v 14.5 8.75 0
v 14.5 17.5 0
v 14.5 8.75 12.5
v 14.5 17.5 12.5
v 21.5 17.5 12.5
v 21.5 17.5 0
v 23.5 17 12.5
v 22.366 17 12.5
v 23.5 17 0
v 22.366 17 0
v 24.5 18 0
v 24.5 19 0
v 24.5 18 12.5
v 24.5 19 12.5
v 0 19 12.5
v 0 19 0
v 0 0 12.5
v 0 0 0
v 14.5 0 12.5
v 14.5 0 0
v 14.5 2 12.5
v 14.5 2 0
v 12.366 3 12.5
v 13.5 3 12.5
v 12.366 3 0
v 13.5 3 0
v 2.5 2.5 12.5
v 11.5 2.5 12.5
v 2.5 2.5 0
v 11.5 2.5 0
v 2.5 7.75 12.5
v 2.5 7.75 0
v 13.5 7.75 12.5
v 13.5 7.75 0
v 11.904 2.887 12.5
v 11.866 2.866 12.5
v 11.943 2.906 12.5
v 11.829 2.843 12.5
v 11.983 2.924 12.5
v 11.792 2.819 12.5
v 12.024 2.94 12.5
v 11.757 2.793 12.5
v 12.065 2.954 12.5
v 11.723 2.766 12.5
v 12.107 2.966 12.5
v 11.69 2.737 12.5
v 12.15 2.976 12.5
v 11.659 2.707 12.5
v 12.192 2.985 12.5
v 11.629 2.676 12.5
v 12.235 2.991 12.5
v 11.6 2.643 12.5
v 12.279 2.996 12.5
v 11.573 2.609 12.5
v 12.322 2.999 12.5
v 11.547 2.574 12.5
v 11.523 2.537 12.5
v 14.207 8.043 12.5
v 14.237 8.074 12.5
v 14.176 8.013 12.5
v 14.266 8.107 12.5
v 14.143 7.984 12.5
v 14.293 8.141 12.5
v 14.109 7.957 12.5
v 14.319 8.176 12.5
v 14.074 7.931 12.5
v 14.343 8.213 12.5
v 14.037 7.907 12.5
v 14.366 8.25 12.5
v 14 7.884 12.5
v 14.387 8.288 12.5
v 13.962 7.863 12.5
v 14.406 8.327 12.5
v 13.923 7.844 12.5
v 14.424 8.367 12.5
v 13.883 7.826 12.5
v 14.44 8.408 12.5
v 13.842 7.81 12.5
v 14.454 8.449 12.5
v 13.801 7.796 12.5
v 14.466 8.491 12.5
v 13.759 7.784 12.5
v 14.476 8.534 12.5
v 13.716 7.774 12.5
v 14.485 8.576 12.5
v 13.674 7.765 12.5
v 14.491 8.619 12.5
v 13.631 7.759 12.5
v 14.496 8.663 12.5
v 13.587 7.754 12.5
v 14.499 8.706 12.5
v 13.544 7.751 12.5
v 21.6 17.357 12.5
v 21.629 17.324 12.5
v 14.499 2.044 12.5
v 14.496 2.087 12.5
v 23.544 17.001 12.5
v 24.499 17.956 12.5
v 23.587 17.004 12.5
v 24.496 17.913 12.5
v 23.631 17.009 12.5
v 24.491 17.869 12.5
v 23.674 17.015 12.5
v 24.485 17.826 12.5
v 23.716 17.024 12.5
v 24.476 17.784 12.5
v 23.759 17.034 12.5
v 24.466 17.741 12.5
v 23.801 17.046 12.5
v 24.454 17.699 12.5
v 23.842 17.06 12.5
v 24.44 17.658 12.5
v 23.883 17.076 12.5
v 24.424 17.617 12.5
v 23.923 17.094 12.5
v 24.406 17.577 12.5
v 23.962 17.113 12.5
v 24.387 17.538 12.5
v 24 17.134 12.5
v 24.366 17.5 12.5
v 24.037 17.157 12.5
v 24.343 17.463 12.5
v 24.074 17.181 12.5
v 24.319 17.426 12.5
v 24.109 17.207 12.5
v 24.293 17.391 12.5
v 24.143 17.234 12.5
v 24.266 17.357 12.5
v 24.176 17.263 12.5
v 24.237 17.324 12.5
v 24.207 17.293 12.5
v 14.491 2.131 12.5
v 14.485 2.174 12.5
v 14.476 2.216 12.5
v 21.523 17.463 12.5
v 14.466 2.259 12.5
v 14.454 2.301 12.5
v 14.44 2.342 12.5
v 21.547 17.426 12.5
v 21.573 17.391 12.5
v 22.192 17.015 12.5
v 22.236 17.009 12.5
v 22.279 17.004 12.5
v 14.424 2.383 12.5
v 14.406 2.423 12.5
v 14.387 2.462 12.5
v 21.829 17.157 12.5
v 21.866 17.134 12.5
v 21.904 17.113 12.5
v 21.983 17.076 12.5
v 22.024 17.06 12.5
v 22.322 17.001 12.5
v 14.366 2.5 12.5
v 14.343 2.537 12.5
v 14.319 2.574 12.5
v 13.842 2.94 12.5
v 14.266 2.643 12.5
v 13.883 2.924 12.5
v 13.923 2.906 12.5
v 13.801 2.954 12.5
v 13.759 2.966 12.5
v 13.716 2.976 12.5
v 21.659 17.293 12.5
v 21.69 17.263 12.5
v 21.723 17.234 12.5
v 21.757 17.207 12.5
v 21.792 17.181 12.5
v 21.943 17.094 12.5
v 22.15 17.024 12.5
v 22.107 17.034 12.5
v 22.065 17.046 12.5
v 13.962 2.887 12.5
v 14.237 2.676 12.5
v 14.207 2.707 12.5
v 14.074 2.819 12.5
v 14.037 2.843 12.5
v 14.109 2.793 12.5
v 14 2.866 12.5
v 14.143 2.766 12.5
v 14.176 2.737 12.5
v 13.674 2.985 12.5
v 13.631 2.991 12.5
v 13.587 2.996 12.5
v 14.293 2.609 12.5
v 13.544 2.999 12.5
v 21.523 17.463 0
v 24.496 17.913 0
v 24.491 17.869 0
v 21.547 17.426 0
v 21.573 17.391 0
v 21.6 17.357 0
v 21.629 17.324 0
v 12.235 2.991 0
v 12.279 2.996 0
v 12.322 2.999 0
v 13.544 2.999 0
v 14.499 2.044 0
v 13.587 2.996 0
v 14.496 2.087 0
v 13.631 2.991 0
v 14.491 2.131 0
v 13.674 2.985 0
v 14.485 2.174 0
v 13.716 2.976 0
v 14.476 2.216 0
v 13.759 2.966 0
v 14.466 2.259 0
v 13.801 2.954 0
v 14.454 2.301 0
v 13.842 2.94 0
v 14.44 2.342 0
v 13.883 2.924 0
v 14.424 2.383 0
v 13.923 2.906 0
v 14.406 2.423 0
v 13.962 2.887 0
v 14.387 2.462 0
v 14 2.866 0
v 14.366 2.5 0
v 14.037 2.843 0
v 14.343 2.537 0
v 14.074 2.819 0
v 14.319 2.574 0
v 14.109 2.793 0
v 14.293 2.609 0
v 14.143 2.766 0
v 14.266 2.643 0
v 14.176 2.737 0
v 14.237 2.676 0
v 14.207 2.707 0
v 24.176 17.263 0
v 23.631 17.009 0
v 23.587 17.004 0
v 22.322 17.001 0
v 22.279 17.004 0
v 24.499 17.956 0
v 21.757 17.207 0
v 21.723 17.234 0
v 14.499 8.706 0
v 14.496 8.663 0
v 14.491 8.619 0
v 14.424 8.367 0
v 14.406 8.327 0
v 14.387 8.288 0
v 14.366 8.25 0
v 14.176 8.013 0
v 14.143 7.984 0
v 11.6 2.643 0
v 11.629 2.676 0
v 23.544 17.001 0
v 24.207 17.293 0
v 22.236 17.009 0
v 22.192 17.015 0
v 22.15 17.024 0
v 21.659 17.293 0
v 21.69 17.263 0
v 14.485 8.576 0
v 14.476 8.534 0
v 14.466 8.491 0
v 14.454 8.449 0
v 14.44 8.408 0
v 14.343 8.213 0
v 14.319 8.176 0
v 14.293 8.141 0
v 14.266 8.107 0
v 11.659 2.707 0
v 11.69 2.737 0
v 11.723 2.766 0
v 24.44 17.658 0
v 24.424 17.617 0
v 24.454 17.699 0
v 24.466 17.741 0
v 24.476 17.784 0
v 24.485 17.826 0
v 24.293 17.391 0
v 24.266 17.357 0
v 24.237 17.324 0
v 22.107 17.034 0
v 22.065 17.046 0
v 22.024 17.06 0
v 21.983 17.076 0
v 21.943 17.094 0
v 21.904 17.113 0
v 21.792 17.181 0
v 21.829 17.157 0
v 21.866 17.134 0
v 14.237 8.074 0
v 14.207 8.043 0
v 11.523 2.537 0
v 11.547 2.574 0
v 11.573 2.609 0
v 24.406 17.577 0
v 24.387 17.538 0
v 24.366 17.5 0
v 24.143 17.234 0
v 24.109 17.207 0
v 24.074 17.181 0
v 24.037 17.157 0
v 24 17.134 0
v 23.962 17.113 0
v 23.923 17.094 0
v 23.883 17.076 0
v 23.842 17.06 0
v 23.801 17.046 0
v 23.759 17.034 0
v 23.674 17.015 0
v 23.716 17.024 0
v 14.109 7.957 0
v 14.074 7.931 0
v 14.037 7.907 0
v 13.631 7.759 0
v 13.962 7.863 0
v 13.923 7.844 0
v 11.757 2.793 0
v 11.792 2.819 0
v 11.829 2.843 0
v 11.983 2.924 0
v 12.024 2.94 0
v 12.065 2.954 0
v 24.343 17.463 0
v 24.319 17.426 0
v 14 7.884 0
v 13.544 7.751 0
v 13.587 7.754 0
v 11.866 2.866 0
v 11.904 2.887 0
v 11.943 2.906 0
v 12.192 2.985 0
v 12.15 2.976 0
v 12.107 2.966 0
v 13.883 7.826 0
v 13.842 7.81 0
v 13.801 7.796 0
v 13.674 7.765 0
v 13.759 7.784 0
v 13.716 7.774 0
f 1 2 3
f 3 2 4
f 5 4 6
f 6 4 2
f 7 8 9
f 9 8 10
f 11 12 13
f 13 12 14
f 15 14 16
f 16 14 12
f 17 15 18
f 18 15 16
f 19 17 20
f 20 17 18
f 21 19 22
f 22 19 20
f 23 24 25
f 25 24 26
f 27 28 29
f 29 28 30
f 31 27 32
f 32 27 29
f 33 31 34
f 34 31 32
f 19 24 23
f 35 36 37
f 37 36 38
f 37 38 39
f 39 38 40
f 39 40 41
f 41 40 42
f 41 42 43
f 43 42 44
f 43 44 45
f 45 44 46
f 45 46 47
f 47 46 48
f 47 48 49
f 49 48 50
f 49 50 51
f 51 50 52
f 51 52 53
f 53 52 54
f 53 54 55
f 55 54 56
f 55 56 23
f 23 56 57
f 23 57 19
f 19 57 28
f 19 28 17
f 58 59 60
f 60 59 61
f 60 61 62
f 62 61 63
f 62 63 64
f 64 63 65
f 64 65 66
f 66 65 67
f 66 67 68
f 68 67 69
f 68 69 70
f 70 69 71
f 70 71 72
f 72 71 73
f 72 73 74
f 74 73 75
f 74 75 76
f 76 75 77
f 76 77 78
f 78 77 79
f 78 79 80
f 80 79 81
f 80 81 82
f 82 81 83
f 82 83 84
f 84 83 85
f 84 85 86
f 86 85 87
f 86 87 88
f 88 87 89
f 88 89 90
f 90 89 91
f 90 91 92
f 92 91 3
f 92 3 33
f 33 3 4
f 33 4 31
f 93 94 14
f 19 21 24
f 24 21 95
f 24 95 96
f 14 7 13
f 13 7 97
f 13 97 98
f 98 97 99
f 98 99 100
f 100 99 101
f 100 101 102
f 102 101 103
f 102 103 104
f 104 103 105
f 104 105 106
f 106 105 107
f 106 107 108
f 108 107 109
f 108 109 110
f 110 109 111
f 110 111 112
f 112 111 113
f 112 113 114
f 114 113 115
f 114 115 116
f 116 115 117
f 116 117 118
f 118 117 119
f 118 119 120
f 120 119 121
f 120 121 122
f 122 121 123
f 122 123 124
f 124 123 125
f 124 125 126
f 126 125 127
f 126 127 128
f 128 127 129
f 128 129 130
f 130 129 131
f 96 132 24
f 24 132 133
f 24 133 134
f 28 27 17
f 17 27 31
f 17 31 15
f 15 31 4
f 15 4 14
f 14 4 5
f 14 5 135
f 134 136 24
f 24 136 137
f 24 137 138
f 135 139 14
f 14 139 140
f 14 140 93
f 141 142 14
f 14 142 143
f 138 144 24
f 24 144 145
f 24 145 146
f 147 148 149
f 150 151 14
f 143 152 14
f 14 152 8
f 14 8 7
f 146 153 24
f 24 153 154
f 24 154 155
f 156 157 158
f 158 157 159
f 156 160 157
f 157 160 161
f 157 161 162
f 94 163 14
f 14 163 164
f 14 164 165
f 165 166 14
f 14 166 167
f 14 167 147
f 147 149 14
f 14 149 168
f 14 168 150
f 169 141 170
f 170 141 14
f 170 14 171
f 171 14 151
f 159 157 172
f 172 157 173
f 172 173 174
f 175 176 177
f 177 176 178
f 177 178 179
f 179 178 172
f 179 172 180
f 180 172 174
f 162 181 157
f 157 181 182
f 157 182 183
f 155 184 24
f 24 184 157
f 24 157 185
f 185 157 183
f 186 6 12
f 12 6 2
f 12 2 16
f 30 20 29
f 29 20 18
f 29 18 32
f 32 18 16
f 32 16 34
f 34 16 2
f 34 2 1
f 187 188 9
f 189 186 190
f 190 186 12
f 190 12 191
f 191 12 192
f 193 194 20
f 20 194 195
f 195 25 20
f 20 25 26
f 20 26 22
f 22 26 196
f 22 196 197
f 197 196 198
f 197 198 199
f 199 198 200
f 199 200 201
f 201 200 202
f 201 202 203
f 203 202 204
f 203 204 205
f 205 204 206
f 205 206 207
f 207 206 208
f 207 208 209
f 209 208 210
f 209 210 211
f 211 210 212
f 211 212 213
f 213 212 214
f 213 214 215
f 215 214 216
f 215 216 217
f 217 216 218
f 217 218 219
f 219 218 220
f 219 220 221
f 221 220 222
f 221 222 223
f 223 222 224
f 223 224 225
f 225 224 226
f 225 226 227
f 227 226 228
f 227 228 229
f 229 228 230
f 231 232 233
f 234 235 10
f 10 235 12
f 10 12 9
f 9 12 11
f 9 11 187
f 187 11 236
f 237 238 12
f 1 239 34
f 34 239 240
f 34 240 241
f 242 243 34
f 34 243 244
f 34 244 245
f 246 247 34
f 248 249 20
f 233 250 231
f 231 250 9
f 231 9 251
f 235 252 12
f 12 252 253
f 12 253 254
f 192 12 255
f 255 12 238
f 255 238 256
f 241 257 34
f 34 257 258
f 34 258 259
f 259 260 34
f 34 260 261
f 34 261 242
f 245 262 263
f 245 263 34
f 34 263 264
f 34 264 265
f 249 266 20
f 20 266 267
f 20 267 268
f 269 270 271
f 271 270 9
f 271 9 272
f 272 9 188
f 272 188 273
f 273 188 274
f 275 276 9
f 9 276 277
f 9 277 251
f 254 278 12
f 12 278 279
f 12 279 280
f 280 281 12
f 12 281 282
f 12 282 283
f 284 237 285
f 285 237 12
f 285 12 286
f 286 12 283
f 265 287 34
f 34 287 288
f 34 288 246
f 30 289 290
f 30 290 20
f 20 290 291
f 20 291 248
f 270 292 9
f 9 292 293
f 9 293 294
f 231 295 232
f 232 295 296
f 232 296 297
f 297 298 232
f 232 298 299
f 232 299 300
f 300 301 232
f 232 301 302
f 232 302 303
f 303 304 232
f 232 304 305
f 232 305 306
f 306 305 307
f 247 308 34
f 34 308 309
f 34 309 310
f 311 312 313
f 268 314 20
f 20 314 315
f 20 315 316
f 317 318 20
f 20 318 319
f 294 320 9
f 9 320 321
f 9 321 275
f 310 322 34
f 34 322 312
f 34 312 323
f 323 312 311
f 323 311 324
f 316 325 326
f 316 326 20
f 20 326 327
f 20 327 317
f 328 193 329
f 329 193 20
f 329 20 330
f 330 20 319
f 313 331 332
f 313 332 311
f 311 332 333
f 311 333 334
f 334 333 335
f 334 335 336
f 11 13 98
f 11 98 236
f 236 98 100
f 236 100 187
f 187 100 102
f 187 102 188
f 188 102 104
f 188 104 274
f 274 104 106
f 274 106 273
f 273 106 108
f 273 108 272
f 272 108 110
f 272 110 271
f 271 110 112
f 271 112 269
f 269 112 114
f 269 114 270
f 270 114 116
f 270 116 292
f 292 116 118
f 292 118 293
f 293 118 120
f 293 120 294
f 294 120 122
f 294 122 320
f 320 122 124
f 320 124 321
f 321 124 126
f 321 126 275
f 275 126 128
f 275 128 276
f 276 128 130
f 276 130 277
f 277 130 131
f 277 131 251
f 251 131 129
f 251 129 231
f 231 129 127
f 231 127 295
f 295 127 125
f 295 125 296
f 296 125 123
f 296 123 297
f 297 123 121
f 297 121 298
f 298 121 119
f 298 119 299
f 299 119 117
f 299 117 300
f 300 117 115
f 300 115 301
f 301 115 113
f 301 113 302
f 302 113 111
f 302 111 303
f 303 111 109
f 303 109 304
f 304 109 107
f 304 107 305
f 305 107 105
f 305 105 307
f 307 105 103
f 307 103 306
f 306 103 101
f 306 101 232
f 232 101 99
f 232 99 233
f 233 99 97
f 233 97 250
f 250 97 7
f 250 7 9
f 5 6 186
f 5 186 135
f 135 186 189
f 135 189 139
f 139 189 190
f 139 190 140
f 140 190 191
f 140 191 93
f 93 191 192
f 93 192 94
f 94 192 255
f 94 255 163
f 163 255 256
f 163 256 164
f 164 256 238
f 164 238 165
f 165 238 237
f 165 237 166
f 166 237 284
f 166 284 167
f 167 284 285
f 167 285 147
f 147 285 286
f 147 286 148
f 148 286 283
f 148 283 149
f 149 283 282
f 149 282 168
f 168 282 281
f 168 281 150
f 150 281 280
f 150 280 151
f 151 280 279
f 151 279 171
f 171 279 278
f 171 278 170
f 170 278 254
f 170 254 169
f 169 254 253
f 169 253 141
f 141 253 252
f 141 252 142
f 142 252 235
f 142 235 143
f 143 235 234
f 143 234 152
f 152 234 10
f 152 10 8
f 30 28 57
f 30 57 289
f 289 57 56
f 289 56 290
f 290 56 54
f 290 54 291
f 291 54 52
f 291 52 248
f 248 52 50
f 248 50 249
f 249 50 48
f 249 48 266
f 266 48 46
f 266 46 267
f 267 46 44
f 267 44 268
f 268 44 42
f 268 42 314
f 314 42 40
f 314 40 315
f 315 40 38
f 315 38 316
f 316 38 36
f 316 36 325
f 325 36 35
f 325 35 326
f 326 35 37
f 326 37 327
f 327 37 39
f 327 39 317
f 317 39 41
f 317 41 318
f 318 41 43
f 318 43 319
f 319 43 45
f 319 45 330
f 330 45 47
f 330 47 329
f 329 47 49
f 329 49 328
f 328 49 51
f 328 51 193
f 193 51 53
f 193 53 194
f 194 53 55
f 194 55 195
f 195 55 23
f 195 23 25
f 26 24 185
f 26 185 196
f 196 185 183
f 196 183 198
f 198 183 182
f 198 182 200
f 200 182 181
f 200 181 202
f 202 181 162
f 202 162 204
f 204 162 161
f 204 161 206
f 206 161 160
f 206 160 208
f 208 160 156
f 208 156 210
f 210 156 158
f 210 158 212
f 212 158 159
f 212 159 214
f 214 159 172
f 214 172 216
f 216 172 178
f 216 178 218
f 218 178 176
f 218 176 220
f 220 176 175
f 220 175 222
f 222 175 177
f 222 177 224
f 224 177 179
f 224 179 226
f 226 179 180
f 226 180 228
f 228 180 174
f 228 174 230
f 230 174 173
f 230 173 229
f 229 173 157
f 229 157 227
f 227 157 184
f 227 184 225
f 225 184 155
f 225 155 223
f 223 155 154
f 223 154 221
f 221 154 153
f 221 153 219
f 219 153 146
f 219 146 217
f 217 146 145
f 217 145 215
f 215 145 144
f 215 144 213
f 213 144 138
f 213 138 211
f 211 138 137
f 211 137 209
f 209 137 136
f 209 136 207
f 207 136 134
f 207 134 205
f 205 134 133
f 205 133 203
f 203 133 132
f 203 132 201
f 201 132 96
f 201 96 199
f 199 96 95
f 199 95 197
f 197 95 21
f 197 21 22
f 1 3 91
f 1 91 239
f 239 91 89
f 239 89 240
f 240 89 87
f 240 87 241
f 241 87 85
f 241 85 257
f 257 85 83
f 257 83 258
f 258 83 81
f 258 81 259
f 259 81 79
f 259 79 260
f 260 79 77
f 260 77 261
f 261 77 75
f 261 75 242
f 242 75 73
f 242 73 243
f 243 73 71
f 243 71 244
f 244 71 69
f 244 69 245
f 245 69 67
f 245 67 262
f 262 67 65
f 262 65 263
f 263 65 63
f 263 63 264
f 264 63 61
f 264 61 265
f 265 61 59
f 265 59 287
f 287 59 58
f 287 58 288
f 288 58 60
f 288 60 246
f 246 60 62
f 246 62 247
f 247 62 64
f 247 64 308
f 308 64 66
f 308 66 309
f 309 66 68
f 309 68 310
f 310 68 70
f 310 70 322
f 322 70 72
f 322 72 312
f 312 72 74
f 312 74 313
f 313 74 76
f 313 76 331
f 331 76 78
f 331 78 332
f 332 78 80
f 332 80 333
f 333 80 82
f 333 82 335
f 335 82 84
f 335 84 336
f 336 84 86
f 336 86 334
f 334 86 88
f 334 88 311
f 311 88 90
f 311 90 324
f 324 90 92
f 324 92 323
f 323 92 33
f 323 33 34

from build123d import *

# Parameters (mm, degrees)
SKETCH1_W           = 3
SKETCH1_H           = 0.5
BOSS_EXTRUDE1_DEPTH = 12.5
FILLET1_R           = 1


with BuildPart() as part:
    # Sketch1 → Boss-Extrude1 (new body)
    with BuildSketch(Plane.XY):
        Polygon((14.5, 17.5), (14.5, 7.75), (2.5, 7.75), (2.5, 2.5), (14.5, 2.5), (14.5, 0), (0, 0), (0, 19), (24.5, 19), (24.5, 17.5), align=None)
        with Locations((23, 17.25)):
            Rectangle(SKETCH1_W, SKETCH1_H)
        with Locations((13, 2.75)):
            Rectangle(SKETCH1_W, SKETCH1_H)
    extrude(amount=BOSS_EXTRUDE1_DEPTH)

    # Fillet1
    # the kernel refuses this fillet: 1 mm, written as the material it takes off along each edge
    with BuildSketch(Plane(origin=(24.5, 17, -2.5), x_dir=(-1, 0, 0), z_dir=(0, 0, 1)), Plane(origin=(14.5, 3, -2.5), x_dir=(0, -1, 0), z_dir=(0, 0, 1))) as fillet1_piece_1:
        with BuildLine():
            CenterArc((FILLET1_R, -FILLET1_R), FILLET1_R, 90, 90)
            Line((0, -FILLET1_R), (-FILLET1_R * 0.02, -FILLET1_R))
            Line((-FILLET1_R * 0.02, -FILLET1_R), (-FILLET1_R * 0.02, FILLET1_R * 0.02))
            Line((-FILLET1_R * 0.02, FILLET1_R * 0.02), (FILLET1_R, FILLET1_R * 0.02))
            Line((FILLET1_R, FILLET1_R * 0.02), (FILLET1_R, 0))
        make_face()
    extrude(amount=17.5, mode=Mode.SUBTRACT)
    with BuildSketch(Plane(origin=(21.5, 17, -2.165063509), x_dir=(0, 1, 0), z_dir=(0, 0, 1))) as fillet1_piece_2:
        with BuildLine():
            CenterArc((1, -0.866025404), FILLET1_R, 120, 60)
            Line((0, -0.866025404), (-0.02, -0.866025404))
            Line((-0.02, -0.866025404), (-0.02, 0))
            Line((-0.02, 0), (0, 0.02))
            ThreePointArc((0, 0.02), (0.25, 0.02), (0.49, 0.017320508))
            Line((0.49, 0.017320508), (0.5, 0))
        make_face()
    extrude(amount=16.830127019, mode=Mode.SUBTRACT)
    with BuildSketch(Plane(origin=(11.5, 3, -2.165063509), x_dir=(1, 0, 0), z_dir=(0, 0, 1))) as fillet1_piece_3:
        with BuildLine():
            CenterArc((0.866025404, -1), FILLET1_R, 90, 60)
            Line((0, -0.5), (-0.017320508, -0.49))
            ThreePointArc((-0.017320508, -0.49), (-0.02, -0.25), (-0.02, 0))
            Line((-0.02, 0), (0, 0.02))
            Line((0, 0.02), (0.866025404, 0.02))
            Line((0.866025404, 0.02), (0.866025404, 0))
        make_face()
    extrude(amount=16.830127019, mode=Mode.SUBTRACT)
    with BuildSketch(Plane(origin=(14.5, 7.75, -2.5), x_dir=(0, 1, 0), z_dir=(0, 0, 1))) as fillet1_piece_4:
        with BuildLine():
            CenterArc((FILLET1_R, FILLET1_R), FILLET1_R, 180, 90)
            Line((0, FILLET1_R), (-FILLET1_R * 0.02, FILLET1_R))
            Line((-FILLET1_R * 0.02, FILLET1_R), (-FILLET1_R * 0.02, -FILLET1_R * 0.02))
            Line((-FILLET1_R * 0.02, -FILLET1_R * 0.02), (FILLET1_R, -FILLET1_R * 0.02))
            Line((FILLET1_R, -FILLET1_R * 0.02), (FILLET1_R, 0))
        make_face()
    extrude(amount=17.5, mode=Mode.SUBTRACT)


solid = part.part
